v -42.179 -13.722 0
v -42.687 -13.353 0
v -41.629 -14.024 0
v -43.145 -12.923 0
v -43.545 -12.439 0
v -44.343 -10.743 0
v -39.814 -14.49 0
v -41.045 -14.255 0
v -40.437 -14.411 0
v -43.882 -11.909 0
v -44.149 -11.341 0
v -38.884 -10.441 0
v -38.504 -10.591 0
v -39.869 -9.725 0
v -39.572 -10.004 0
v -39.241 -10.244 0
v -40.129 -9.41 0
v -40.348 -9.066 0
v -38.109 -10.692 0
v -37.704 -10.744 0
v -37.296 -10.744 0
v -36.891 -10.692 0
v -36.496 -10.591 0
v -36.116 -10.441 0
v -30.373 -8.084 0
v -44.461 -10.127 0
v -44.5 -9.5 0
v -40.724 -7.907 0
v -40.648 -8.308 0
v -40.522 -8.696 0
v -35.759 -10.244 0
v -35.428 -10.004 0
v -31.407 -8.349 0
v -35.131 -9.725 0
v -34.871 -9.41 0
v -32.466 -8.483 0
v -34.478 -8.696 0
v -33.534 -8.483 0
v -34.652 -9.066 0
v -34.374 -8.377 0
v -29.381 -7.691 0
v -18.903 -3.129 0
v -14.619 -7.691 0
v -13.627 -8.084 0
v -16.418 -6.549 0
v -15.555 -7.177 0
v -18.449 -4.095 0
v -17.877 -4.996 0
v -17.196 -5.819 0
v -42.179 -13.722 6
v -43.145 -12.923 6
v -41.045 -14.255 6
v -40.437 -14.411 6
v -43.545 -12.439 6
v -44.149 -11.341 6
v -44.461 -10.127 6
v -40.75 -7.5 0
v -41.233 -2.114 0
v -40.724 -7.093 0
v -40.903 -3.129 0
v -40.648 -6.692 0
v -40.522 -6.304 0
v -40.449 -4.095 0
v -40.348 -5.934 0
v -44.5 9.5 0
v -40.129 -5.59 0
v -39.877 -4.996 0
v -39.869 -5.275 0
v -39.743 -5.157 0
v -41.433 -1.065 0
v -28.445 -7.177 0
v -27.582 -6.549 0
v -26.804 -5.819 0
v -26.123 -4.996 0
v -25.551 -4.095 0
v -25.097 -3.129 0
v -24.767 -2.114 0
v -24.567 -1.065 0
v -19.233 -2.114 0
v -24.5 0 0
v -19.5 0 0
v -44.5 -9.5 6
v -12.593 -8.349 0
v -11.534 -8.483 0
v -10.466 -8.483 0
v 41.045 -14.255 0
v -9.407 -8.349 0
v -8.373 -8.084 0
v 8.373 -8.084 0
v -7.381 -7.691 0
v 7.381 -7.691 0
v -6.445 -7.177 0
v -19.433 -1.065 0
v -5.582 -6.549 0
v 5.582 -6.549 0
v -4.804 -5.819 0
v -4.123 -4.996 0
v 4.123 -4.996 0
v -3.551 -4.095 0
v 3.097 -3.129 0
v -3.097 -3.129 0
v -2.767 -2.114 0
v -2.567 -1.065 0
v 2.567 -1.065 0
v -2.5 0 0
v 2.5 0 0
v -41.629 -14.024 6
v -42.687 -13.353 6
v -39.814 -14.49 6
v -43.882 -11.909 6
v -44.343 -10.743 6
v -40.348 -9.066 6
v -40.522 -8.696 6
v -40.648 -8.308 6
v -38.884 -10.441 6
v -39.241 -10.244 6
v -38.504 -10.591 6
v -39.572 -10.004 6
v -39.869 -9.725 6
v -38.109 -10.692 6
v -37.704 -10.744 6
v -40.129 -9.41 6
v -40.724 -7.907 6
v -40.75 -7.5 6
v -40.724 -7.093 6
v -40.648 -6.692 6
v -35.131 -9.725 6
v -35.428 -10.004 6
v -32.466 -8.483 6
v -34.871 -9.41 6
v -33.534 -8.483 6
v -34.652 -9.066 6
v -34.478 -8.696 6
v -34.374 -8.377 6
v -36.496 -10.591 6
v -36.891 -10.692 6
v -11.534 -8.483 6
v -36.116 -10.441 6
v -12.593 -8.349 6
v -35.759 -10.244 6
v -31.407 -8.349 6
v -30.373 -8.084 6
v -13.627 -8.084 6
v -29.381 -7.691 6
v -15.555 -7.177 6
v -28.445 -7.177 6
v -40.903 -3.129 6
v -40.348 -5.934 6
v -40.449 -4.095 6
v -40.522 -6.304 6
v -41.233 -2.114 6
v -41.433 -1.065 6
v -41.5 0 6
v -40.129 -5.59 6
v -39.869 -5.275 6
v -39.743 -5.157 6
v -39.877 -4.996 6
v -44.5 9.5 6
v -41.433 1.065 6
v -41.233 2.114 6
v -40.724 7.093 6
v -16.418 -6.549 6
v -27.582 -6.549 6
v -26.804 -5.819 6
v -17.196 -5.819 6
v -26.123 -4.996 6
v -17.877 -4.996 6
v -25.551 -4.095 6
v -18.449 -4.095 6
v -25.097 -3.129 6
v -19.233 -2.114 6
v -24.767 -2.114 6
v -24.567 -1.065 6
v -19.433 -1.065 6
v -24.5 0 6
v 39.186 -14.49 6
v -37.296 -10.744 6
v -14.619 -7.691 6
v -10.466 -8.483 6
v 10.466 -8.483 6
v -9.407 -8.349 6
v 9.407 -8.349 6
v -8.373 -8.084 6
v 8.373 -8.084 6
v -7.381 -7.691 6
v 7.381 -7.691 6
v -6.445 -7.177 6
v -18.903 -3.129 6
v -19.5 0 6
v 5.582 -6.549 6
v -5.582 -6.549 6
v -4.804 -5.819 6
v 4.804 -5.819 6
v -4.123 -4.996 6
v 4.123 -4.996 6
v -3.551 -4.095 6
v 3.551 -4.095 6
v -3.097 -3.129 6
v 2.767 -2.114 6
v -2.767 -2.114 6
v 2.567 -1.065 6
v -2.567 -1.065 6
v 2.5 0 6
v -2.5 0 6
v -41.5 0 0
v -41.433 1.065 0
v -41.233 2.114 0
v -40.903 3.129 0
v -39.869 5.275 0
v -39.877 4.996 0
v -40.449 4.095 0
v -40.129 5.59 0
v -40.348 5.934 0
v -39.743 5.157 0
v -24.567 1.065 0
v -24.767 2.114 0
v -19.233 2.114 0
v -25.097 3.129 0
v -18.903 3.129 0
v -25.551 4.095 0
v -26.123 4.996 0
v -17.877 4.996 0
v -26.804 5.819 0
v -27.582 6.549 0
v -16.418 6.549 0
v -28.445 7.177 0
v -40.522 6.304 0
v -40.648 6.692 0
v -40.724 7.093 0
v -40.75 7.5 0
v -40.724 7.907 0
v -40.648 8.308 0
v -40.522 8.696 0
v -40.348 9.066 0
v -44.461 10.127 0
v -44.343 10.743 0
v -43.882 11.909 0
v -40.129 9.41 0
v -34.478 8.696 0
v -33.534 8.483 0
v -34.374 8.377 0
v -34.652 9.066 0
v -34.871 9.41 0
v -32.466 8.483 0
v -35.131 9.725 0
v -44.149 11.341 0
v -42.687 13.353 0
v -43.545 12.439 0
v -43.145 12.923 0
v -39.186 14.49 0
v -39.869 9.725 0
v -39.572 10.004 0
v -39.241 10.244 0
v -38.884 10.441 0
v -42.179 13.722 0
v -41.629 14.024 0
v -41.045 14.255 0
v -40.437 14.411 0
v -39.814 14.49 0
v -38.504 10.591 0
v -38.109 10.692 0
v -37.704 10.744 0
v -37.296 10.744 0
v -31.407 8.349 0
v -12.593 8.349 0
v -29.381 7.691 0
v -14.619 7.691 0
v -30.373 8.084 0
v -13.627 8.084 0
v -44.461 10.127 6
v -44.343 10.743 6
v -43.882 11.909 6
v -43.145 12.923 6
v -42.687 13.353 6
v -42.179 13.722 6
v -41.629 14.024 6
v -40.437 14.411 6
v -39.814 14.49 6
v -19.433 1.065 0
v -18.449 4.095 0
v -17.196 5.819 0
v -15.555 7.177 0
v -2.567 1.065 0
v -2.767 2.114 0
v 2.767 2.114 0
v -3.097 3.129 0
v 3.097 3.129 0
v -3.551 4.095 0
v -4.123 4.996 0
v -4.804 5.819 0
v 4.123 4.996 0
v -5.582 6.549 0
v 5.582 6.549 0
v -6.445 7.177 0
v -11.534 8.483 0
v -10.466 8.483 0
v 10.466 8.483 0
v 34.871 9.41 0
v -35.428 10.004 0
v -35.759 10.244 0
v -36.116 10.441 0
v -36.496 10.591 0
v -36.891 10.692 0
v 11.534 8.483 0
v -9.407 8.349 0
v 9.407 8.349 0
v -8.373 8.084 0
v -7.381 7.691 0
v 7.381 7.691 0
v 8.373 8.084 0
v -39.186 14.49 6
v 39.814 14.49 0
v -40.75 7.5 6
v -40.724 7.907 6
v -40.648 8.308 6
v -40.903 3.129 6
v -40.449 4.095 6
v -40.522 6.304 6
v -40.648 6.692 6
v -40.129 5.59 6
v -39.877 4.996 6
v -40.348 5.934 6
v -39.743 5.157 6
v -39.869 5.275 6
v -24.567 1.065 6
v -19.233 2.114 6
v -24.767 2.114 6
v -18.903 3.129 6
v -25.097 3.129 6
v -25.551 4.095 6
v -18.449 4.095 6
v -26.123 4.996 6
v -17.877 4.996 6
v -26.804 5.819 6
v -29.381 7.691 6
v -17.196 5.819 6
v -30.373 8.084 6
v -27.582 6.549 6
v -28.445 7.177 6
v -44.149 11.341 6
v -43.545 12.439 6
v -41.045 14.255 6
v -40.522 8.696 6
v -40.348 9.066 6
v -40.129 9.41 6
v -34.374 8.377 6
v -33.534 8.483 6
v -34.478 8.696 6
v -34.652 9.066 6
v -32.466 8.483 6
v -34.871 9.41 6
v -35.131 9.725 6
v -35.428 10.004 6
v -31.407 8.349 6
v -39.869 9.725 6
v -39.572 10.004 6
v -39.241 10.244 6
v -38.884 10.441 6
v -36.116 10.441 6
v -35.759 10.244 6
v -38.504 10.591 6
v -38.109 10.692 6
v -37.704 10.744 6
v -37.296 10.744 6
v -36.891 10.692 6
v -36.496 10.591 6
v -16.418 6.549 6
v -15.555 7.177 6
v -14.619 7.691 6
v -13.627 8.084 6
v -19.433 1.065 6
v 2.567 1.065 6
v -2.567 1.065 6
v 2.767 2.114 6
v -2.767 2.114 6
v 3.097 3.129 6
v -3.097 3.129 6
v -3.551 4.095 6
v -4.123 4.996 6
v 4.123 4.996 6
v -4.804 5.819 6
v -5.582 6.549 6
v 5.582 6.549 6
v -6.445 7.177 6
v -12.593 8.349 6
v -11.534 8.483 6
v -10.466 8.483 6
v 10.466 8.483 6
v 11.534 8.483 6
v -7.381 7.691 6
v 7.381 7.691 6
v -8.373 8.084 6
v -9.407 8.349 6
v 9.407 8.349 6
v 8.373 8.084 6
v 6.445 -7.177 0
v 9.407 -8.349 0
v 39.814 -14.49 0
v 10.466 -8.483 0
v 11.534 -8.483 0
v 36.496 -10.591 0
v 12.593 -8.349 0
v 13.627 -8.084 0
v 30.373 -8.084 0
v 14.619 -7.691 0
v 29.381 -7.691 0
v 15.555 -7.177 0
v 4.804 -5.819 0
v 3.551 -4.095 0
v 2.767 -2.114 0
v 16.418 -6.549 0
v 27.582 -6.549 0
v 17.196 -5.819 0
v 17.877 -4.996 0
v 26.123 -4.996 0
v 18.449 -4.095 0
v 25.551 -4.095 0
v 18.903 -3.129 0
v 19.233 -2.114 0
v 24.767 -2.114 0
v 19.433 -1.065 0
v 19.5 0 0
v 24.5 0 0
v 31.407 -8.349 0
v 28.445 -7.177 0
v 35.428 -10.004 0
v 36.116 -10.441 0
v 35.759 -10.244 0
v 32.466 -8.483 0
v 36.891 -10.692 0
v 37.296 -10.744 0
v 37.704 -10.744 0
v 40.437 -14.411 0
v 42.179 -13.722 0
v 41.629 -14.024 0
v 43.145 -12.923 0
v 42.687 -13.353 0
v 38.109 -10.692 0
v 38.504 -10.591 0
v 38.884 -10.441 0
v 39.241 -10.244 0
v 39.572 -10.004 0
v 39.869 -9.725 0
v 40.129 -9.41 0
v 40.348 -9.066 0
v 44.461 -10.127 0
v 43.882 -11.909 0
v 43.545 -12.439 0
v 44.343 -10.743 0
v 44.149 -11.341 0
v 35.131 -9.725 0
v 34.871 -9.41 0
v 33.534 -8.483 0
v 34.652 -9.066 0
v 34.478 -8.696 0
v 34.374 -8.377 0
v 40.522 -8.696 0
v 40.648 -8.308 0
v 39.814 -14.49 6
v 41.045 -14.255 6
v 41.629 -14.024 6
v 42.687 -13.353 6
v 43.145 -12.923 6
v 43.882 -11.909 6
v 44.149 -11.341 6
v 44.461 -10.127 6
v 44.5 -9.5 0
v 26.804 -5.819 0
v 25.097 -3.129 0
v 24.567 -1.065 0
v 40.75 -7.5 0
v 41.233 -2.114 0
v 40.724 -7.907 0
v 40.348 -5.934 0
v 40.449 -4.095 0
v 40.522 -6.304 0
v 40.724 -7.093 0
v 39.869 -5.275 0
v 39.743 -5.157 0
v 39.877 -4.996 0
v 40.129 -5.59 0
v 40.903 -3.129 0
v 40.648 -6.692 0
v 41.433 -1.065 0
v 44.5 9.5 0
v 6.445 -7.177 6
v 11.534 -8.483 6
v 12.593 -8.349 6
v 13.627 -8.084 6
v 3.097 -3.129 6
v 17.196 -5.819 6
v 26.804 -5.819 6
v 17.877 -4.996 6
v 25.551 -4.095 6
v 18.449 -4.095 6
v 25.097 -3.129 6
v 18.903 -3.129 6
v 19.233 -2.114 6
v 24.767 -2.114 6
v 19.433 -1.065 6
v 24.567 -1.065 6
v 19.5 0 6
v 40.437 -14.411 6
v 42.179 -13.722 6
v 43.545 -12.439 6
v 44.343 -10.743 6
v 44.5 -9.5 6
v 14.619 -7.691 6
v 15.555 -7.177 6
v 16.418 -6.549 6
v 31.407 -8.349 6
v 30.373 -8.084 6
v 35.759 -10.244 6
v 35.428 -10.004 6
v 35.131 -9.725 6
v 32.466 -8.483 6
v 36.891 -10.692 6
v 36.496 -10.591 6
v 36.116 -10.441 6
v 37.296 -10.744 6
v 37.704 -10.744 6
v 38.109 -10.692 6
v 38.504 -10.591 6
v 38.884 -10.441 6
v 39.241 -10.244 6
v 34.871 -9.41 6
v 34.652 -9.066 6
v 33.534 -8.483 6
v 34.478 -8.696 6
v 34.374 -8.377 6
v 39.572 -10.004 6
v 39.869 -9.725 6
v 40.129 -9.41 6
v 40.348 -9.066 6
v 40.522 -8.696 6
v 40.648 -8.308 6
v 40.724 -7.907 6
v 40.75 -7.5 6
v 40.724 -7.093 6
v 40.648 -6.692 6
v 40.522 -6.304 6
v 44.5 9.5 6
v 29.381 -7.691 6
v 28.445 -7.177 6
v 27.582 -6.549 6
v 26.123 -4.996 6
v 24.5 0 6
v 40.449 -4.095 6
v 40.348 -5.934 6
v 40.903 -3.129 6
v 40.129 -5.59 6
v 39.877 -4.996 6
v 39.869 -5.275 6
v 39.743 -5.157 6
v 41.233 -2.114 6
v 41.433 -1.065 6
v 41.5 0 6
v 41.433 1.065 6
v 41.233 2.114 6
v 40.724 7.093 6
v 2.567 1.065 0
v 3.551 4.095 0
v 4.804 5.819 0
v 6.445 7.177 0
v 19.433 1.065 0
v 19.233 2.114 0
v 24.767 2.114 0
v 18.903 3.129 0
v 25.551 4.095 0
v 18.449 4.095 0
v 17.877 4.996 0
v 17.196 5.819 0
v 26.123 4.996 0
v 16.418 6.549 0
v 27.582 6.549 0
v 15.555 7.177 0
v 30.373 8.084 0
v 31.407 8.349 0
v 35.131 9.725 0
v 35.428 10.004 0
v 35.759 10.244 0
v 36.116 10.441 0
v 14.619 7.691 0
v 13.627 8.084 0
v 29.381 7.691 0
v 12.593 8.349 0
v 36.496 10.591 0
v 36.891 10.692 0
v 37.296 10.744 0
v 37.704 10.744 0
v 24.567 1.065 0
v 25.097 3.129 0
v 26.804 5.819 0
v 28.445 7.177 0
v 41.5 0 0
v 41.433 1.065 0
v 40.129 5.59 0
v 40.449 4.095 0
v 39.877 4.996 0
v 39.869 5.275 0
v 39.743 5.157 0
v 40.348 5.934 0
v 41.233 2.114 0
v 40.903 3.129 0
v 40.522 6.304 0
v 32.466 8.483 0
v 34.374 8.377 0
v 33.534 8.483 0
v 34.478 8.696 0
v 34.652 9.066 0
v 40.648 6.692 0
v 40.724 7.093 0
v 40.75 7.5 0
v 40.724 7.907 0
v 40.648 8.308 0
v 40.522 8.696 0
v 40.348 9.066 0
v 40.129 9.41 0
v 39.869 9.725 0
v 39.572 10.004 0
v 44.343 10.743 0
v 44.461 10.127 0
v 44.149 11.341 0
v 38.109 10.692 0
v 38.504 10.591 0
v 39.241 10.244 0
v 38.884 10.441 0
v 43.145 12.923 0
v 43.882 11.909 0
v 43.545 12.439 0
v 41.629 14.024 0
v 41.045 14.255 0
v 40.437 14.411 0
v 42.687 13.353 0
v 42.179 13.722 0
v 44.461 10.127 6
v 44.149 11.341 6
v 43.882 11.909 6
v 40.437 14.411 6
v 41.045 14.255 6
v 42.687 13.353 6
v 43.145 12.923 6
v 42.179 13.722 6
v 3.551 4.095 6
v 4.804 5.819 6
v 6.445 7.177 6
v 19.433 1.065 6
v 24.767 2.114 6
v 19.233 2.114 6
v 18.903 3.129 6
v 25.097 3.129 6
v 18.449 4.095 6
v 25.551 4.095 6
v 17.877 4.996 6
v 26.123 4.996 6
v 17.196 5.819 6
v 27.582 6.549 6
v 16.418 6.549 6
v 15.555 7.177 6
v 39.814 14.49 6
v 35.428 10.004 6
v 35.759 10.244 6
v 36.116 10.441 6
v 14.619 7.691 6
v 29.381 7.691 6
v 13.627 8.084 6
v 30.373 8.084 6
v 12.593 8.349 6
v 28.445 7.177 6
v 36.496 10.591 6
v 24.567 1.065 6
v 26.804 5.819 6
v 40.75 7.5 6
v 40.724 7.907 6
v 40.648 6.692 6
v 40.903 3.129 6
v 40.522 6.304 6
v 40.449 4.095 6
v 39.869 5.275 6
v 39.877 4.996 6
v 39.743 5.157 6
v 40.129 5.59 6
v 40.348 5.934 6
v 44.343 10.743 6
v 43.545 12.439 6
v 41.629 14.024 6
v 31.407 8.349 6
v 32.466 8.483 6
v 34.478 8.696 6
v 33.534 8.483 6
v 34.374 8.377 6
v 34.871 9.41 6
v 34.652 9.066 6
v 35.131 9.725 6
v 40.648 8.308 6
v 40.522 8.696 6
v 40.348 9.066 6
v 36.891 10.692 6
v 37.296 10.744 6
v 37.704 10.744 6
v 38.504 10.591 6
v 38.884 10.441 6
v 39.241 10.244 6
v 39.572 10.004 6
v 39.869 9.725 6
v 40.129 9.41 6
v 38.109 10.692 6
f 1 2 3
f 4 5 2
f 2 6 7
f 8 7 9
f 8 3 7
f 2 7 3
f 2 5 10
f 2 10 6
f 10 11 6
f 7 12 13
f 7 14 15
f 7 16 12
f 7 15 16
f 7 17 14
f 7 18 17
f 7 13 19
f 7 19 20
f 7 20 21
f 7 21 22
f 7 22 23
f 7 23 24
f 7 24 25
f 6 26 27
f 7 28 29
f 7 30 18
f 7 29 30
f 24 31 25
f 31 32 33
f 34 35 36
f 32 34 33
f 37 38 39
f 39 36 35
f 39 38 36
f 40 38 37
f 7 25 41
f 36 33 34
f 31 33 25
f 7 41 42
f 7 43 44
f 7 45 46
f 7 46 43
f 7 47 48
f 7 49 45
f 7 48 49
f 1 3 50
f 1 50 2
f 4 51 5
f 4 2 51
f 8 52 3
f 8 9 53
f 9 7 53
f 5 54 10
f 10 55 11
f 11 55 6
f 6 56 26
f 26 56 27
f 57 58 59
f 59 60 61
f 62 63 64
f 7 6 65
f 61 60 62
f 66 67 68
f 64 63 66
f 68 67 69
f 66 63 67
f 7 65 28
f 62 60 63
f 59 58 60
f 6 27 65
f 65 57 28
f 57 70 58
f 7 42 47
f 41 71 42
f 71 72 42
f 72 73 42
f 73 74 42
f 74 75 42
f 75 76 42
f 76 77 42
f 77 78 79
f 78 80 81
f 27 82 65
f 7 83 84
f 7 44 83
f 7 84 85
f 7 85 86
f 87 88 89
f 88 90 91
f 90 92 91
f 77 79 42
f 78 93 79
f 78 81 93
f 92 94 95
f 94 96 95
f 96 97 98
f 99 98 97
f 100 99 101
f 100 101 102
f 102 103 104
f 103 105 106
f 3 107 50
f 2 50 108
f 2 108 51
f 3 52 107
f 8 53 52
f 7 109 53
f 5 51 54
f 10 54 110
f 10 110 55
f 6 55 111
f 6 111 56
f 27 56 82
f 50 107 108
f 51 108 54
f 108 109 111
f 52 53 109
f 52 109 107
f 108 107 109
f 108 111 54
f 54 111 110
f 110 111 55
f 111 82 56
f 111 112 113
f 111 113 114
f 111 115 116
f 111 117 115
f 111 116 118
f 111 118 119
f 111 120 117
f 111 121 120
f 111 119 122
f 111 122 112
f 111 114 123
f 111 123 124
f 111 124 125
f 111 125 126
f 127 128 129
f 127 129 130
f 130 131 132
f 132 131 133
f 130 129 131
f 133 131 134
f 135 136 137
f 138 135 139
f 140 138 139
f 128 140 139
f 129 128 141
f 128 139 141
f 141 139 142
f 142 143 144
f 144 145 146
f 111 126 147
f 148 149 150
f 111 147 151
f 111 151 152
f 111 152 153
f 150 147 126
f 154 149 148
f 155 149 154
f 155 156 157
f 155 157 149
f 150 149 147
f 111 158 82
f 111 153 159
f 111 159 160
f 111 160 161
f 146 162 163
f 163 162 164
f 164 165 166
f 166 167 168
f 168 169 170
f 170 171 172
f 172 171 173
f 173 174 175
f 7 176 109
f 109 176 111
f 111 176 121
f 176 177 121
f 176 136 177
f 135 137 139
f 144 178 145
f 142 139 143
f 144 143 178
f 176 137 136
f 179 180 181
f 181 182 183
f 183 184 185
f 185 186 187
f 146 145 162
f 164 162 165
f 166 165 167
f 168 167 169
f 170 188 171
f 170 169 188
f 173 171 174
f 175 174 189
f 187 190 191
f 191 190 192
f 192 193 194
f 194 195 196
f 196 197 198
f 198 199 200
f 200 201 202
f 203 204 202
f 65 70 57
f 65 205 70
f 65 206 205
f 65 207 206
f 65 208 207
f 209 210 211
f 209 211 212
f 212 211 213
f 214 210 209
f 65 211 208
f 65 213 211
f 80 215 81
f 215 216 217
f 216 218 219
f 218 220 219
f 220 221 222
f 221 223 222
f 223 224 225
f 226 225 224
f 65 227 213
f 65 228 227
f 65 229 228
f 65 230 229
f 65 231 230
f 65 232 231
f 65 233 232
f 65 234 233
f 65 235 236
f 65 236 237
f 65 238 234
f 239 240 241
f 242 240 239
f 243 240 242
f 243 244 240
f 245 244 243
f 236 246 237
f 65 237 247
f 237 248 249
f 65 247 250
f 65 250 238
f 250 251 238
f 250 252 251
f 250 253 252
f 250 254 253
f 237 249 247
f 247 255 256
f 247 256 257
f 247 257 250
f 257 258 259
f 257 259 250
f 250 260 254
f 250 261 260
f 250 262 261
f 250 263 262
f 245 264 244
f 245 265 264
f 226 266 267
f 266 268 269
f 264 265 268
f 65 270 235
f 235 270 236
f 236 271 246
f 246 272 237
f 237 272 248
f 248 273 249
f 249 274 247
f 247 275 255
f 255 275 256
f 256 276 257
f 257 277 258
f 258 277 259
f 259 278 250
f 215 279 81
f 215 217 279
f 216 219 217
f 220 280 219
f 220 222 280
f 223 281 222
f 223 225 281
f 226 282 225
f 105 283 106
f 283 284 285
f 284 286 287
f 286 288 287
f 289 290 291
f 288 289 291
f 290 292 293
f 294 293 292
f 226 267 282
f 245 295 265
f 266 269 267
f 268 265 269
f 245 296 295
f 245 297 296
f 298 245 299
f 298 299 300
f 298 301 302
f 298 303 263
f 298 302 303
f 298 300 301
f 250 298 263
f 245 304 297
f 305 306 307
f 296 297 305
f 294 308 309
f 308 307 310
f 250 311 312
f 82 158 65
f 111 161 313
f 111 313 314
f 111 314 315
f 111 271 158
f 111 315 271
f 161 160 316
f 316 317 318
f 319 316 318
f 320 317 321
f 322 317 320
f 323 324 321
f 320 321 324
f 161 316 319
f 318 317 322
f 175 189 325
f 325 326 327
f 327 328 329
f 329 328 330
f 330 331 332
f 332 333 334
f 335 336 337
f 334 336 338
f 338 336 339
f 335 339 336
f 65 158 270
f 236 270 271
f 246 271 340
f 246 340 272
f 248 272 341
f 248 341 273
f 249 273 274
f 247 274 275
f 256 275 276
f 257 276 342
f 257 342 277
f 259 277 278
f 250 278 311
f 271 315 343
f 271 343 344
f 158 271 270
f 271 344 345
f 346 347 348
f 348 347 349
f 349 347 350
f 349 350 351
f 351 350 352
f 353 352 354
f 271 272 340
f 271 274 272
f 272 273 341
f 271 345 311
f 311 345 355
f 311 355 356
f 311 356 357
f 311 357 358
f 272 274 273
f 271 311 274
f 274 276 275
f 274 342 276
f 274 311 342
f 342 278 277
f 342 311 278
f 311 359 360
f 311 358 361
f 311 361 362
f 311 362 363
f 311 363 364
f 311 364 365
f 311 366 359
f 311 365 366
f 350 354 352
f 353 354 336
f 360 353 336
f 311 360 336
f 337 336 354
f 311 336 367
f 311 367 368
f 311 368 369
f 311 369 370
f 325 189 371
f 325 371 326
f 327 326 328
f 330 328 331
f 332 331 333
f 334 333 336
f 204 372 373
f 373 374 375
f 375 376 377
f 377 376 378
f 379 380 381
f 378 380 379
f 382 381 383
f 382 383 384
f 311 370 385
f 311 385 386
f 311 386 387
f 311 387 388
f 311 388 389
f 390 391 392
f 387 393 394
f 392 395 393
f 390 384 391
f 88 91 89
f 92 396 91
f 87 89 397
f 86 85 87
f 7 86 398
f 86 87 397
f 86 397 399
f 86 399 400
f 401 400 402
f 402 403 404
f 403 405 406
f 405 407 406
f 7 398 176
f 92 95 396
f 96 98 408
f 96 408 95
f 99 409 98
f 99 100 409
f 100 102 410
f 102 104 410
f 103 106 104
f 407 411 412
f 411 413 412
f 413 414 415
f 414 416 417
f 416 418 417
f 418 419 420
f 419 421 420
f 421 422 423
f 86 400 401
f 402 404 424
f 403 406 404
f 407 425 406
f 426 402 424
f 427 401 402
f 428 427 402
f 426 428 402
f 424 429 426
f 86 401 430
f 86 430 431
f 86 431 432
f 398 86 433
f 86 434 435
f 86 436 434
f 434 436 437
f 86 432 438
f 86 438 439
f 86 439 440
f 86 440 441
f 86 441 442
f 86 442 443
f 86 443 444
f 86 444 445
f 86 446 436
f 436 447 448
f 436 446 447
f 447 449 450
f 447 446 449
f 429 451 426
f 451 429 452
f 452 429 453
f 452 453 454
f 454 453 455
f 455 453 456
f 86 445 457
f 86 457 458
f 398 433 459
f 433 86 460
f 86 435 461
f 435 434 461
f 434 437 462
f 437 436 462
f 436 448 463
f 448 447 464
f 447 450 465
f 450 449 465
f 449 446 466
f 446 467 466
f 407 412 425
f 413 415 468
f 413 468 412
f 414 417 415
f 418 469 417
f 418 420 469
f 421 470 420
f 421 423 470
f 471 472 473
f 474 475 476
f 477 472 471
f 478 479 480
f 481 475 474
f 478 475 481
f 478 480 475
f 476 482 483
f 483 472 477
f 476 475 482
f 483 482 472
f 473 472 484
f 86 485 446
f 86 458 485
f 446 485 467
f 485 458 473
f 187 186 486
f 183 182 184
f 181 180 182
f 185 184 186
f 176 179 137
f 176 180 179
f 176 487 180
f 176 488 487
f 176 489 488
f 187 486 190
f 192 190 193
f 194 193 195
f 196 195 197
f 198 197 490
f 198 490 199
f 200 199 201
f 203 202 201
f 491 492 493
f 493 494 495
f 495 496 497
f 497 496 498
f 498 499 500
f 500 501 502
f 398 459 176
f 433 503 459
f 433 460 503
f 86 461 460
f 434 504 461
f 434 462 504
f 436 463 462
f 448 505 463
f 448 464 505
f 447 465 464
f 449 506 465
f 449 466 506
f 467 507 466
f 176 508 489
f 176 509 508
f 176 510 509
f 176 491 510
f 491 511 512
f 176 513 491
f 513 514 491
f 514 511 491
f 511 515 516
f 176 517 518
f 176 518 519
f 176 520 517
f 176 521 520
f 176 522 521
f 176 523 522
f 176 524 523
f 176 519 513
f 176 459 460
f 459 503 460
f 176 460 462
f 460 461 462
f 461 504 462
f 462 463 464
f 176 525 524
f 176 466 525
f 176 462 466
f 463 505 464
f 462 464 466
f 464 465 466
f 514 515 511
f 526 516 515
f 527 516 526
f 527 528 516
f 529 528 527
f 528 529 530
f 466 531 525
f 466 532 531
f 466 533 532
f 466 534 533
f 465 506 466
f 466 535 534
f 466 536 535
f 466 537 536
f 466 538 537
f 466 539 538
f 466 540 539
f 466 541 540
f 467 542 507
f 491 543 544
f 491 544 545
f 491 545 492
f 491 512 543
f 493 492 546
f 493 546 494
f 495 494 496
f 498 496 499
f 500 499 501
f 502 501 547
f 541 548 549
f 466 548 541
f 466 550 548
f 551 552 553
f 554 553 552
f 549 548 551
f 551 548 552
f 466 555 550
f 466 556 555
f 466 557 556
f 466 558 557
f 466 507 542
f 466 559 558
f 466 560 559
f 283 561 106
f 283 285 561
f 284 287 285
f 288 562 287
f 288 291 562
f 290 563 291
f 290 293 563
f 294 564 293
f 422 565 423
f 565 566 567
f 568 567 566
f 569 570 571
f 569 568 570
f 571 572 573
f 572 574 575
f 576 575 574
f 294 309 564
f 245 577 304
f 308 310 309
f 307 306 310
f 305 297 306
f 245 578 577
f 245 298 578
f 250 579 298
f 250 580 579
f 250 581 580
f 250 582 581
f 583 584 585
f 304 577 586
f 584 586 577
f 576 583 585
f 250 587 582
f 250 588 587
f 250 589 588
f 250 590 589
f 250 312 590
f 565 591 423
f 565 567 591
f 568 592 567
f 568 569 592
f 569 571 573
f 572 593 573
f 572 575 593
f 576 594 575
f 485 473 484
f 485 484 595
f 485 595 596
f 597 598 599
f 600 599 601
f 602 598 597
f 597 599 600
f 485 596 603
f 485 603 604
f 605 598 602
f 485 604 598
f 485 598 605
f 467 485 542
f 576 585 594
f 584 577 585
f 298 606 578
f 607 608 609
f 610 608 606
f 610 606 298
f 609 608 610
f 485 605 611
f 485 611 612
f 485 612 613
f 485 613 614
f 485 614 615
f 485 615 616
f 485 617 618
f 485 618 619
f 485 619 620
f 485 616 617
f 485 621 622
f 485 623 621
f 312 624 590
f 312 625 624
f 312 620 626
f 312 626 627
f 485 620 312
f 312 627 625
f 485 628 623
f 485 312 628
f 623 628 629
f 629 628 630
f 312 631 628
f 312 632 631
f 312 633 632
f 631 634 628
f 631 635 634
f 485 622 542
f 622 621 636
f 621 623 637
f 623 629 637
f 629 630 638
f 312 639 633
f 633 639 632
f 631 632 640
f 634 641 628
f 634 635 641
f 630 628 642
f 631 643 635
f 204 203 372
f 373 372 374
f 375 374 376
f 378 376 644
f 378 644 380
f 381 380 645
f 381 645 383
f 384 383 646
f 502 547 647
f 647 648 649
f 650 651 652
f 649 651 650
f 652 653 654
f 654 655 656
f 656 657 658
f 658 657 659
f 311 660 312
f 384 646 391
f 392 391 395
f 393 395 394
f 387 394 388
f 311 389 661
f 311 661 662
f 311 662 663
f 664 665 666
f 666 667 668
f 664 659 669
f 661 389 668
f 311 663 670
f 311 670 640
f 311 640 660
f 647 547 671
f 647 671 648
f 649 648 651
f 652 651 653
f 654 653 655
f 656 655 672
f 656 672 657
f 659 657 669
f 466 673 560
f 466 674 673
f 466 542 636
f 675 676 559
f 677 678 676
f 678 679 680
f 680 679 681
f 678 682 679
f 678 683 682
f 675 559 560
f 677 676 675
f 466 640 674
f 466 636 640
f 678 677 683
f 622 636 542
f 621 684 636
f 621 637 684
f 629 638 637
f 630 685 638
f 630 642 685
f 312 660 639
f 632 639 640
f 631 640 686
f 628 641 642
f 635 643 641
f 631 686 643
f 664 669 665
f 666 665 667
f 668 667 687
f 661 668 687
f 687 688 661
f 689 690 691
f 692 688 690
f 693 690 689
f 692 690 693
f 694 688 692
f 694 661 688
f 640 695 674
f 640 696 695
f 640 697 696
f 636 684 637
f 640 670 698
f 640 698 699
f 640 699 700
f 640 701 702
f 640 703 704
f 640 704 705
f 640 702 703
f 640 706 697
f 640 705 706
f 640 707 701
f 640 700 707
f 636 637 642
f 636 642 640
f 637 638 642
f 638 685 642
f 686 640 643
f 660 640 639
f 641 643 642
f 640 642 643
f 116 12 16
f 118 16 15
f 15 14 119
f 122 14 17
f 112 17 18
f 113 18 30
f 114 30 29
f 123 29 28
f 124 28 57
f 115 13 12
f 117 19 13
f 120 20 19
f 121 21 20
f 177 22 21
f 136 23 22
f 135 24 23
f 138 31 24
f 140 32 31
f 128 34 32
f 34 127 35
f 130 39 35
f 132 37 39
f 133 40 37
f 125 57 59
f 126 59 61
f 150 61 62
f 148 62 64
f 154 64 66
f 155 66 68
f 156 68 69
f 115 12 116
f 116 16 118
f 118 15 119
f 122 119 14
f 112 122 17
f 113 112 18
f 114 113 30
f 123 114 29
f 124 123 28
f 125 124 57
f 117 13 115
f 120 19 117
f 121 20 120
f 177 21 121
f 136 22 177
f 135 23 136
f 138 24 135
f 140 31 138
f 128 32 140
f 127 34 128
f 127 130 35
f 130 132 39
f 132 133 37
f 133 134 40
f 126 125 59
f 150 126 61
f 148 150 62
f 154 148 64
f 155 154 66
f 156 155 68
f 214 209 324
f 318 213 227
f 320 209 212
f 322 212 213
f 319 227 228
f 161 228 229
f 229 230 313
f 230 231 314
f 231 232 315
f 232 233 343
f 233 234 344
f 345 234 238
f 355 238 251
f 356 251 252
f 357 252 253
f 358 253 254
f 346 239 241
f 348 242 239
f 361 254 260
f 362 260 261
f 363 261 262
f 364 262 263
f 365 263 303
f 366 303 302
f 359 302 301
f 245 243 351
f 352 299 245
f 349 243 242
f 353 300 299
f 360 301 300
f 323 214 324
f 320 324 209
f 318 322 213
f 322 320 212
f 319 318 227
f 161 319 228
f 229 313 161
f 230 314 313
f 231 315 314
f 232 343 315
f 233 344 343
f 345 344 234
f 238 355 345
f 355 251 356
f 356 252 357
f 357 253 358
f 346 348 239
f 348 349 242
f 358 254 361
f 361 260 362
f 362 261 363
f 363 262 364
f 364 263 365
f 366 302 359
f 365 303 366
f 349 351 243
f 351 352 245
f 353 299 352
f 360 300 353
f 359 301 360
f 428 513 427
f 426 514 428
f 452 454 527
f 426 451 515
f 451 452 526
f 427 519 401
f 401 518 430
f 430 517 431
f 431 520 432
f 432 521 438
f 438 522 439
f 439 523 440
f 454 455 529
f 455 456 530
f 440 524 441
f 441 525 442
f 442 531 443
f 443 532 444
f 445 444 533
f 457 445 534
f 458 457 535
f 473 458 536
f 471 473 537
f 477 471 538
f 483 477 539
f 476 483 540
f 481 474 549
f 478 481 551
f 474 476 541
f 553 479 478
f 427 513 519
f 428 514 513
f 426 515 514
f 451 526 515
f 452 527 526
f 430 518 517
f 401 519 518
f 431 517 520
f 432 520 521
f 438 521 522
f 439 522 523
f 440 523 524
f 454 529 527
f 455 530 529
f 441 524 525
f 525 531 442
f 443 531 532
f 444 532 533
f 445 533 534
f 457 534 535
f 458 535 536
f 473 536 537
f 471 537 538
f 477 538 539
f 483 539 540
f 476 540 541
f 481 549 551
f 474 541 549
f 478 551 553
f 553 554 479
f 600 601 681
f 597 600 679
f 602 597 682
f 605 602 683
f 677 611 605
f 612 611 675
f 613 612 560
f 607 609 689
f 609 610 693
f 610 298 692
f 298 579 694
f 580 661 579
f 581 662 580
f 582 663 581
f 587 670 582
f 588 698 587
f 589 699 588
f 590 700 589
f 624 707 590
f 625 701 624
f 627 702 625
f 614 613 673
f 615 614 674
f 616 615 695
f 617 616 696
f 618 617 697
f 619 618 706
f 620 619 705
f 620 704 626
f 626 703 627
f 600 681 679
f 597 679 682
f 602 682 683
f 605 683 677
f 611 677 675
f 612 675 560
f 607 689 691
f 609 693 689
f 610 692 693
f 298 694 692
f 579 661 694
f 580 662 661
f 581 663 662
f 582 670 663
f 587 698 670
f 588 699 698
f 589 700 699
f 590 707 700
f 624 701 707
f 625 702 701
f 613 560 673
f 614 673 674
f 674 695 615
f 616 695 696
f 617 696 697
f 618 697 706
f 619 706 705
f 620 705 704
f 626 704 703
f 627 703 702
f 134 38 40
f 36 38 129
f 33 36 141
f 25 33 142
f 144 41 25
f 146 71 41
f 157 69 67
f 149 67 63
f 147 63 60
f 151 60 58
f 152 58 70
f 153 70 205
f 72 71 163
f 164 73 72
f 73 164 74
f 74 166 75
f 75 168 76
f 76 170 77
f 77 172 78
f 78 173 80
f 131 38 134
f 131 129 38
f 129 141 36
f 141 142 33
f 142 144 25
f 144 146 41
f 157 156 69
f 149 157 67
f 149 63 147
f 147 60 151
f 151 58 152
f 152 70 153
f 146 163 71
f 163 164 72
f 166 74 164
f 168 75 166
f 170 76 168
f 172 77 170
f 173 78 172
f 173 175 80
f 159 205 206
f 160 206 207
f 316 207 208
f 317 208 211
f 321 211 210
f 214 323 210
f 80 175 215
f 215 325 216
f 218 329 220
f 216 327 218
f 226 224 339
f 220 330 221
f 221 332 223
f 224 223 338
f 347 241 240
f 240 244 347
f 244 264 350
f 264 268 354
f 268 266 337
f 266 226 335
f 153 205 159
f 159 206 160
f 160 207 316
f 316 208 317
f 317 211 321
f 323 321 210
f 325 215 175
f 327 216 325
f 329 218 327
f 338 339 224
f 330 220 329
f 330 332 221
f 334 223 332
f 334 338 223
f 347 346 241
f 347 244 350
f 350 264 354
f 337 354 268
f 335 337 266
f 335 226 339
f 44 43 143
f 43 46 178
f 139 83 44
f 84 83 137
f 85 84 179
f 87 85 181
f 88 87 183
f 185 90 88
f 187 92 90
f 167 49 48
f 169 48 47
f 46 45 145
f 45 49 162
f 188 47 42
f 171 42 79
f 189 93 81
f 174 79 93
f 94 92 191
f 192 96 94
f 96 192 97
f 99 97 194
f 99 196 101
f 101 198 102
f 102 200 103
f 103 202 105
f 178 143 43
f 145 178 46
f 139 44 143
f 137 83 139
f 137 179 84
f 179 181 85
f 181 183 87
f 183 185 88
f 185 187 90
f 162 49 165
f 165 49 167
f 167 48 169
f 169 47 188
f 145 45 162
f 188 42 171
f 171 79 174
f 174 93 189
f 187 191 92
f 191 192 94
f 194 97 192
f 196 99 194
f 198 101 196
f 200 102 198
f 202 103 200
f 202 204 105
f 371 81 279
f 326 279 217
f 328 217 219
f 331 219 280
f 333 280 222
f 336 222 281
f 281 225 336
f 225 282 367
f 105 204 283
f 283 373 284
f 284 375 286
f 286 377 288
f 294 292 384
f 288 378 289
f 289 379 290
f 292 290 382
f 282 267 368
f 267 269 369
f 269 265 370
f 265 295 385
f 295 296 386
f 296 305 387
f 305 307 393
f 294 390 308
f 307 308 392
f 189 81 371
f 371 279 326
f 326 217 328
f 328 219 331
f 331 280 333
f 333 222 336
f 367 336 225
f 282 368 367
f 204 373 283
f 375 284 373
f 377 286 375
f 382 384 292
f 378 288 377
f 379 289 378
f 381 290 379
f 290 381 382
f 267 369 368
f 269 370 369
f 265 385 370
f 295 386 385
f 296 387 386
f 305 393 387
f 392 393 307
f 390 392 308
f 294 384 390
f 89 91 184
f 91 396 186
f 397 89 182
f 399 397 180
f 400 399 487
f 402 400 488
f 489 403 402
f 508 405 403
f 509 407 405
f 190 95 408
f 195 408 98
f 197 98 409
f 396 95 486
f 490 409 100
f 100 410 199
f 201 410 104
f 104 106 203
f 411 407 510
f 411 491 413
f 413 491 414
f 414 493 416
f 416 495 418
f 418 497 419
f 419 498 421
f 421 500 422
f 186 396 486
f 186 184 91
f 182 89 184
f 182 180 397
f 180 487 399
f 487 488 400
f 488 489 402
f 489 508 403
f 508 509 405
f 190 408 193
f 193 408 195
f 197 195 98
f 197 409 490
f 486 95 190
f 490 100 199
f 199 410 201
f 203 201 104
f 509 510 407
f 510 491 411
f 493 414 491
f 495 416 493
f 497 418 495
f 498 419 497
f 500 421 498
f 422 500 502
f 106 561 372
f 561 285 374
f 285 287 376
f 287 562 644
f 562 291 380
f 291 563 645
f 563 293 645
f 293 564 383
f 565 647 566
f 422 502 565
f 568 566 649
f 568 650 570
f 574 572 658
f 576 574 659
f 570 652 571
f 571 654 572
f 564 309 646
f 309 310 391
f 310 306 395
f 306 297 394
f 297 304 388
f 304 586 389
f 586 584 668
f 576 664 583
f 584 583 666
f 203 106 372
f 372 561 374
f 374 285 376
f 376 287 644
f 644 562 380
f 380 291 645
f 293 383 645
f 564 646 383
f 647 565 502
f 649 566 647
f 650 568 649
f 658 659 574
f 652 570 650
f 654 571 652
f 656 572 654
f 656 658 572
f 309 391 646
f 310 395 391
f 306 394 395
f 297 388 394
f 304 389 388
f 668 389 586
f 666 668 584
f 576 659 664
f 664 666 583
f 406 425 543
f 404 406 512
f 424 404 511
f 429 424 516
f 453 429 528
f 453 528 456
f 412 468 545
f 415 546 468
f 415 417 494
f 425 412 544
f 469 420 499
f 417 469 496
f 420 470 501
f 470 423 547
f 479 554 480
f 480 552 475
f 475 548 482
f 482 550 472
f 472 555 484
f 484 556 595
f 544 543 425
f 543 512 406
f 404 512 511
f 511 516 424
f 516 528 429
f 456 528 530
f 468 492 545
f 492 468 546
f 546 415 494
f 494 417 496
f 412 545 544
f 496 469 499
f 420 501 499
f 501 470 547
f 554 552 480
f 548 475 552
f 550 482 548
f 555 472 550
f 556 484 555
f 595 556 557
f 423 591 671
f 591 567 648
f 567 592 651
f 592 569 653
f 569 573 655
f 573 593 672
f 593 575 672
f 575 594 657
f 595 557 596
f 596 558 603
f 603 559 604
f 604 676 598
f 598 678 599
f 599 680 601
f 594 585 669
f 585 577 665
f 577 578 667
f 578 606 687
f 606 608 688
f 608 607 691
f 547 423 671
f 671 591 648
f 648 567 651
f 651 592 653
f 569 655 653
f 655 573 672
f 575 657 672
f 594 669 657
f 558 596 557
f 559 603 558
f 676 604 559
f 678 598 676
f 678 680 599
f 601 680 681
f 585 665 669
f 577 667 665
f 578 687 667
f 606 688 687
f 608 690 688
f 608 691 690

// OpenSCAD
$fn = 50;

difference() {
	union() {
		hull() {
			translate(v = [-39.5, 9.5, 0]) {
				cylinder(h = 6, r = 5);
			}
			translate(v = [39.5, 9.5, 0]) {
				cylinder(h = 6, r = 5);
			}
			translate(v = [-39.5, -9.5, 0]) {
				cylinder(h = 6, r = 5);
			}
			translate(v = [39.5, -9.5, 0]) {
				cylinder(h = 6, r = 5);
			}
		}
	}
	union() {
		translate(v = [-37.5, -7.5, -100.0]) {
			cylinder(h = 200, r = 3.25);
		}
		translate(v = [-37.5, 7.5, -100.0]) {
			cylinder(h = 200, r = 3.25);
		}
		translate(v = [37.5, -7.5, -100.0]) {
			cylinder(h = 200, r = 3.25);
		}
		translate(v = [37.5, 7.5, -100.0]) {
			cylinder(h = 200, r = 3.25);
		}
		translate(v = [-37.5, -7.5, -100.0]) {
			cylinder(h = 200, r = 1.8);
		}
		translate(v = [-37.5, 7.5, -100.0]) {
			cylinder(h = 200, r = 1.8);
		}
		translate(v = [37.5, -7.5, -100.0]) {
			cylinder(h = 200, r = 1.8);
		}
		translate(v = [37.5, 7.5, -100.0]) {
			cylinder(h = 200, r = 1.8);
		}
		translate(v = [-33.0, 0, 0.0]) {
			cylinder(h = 6, r = 8.5);
		}
		translate(v = [-11.0, 0, 0.0]) {
			cylinder(h = 6, r = 8.5);
		}
		translate(v = [11.0, 0, 0.0]) {
			cylinder(h = 6, r = 8.5);
		}
		translate(v = [33.0, 0, 0.0]) {
			cylinder(h = 6, r = 8.5);
		}
	}
}
